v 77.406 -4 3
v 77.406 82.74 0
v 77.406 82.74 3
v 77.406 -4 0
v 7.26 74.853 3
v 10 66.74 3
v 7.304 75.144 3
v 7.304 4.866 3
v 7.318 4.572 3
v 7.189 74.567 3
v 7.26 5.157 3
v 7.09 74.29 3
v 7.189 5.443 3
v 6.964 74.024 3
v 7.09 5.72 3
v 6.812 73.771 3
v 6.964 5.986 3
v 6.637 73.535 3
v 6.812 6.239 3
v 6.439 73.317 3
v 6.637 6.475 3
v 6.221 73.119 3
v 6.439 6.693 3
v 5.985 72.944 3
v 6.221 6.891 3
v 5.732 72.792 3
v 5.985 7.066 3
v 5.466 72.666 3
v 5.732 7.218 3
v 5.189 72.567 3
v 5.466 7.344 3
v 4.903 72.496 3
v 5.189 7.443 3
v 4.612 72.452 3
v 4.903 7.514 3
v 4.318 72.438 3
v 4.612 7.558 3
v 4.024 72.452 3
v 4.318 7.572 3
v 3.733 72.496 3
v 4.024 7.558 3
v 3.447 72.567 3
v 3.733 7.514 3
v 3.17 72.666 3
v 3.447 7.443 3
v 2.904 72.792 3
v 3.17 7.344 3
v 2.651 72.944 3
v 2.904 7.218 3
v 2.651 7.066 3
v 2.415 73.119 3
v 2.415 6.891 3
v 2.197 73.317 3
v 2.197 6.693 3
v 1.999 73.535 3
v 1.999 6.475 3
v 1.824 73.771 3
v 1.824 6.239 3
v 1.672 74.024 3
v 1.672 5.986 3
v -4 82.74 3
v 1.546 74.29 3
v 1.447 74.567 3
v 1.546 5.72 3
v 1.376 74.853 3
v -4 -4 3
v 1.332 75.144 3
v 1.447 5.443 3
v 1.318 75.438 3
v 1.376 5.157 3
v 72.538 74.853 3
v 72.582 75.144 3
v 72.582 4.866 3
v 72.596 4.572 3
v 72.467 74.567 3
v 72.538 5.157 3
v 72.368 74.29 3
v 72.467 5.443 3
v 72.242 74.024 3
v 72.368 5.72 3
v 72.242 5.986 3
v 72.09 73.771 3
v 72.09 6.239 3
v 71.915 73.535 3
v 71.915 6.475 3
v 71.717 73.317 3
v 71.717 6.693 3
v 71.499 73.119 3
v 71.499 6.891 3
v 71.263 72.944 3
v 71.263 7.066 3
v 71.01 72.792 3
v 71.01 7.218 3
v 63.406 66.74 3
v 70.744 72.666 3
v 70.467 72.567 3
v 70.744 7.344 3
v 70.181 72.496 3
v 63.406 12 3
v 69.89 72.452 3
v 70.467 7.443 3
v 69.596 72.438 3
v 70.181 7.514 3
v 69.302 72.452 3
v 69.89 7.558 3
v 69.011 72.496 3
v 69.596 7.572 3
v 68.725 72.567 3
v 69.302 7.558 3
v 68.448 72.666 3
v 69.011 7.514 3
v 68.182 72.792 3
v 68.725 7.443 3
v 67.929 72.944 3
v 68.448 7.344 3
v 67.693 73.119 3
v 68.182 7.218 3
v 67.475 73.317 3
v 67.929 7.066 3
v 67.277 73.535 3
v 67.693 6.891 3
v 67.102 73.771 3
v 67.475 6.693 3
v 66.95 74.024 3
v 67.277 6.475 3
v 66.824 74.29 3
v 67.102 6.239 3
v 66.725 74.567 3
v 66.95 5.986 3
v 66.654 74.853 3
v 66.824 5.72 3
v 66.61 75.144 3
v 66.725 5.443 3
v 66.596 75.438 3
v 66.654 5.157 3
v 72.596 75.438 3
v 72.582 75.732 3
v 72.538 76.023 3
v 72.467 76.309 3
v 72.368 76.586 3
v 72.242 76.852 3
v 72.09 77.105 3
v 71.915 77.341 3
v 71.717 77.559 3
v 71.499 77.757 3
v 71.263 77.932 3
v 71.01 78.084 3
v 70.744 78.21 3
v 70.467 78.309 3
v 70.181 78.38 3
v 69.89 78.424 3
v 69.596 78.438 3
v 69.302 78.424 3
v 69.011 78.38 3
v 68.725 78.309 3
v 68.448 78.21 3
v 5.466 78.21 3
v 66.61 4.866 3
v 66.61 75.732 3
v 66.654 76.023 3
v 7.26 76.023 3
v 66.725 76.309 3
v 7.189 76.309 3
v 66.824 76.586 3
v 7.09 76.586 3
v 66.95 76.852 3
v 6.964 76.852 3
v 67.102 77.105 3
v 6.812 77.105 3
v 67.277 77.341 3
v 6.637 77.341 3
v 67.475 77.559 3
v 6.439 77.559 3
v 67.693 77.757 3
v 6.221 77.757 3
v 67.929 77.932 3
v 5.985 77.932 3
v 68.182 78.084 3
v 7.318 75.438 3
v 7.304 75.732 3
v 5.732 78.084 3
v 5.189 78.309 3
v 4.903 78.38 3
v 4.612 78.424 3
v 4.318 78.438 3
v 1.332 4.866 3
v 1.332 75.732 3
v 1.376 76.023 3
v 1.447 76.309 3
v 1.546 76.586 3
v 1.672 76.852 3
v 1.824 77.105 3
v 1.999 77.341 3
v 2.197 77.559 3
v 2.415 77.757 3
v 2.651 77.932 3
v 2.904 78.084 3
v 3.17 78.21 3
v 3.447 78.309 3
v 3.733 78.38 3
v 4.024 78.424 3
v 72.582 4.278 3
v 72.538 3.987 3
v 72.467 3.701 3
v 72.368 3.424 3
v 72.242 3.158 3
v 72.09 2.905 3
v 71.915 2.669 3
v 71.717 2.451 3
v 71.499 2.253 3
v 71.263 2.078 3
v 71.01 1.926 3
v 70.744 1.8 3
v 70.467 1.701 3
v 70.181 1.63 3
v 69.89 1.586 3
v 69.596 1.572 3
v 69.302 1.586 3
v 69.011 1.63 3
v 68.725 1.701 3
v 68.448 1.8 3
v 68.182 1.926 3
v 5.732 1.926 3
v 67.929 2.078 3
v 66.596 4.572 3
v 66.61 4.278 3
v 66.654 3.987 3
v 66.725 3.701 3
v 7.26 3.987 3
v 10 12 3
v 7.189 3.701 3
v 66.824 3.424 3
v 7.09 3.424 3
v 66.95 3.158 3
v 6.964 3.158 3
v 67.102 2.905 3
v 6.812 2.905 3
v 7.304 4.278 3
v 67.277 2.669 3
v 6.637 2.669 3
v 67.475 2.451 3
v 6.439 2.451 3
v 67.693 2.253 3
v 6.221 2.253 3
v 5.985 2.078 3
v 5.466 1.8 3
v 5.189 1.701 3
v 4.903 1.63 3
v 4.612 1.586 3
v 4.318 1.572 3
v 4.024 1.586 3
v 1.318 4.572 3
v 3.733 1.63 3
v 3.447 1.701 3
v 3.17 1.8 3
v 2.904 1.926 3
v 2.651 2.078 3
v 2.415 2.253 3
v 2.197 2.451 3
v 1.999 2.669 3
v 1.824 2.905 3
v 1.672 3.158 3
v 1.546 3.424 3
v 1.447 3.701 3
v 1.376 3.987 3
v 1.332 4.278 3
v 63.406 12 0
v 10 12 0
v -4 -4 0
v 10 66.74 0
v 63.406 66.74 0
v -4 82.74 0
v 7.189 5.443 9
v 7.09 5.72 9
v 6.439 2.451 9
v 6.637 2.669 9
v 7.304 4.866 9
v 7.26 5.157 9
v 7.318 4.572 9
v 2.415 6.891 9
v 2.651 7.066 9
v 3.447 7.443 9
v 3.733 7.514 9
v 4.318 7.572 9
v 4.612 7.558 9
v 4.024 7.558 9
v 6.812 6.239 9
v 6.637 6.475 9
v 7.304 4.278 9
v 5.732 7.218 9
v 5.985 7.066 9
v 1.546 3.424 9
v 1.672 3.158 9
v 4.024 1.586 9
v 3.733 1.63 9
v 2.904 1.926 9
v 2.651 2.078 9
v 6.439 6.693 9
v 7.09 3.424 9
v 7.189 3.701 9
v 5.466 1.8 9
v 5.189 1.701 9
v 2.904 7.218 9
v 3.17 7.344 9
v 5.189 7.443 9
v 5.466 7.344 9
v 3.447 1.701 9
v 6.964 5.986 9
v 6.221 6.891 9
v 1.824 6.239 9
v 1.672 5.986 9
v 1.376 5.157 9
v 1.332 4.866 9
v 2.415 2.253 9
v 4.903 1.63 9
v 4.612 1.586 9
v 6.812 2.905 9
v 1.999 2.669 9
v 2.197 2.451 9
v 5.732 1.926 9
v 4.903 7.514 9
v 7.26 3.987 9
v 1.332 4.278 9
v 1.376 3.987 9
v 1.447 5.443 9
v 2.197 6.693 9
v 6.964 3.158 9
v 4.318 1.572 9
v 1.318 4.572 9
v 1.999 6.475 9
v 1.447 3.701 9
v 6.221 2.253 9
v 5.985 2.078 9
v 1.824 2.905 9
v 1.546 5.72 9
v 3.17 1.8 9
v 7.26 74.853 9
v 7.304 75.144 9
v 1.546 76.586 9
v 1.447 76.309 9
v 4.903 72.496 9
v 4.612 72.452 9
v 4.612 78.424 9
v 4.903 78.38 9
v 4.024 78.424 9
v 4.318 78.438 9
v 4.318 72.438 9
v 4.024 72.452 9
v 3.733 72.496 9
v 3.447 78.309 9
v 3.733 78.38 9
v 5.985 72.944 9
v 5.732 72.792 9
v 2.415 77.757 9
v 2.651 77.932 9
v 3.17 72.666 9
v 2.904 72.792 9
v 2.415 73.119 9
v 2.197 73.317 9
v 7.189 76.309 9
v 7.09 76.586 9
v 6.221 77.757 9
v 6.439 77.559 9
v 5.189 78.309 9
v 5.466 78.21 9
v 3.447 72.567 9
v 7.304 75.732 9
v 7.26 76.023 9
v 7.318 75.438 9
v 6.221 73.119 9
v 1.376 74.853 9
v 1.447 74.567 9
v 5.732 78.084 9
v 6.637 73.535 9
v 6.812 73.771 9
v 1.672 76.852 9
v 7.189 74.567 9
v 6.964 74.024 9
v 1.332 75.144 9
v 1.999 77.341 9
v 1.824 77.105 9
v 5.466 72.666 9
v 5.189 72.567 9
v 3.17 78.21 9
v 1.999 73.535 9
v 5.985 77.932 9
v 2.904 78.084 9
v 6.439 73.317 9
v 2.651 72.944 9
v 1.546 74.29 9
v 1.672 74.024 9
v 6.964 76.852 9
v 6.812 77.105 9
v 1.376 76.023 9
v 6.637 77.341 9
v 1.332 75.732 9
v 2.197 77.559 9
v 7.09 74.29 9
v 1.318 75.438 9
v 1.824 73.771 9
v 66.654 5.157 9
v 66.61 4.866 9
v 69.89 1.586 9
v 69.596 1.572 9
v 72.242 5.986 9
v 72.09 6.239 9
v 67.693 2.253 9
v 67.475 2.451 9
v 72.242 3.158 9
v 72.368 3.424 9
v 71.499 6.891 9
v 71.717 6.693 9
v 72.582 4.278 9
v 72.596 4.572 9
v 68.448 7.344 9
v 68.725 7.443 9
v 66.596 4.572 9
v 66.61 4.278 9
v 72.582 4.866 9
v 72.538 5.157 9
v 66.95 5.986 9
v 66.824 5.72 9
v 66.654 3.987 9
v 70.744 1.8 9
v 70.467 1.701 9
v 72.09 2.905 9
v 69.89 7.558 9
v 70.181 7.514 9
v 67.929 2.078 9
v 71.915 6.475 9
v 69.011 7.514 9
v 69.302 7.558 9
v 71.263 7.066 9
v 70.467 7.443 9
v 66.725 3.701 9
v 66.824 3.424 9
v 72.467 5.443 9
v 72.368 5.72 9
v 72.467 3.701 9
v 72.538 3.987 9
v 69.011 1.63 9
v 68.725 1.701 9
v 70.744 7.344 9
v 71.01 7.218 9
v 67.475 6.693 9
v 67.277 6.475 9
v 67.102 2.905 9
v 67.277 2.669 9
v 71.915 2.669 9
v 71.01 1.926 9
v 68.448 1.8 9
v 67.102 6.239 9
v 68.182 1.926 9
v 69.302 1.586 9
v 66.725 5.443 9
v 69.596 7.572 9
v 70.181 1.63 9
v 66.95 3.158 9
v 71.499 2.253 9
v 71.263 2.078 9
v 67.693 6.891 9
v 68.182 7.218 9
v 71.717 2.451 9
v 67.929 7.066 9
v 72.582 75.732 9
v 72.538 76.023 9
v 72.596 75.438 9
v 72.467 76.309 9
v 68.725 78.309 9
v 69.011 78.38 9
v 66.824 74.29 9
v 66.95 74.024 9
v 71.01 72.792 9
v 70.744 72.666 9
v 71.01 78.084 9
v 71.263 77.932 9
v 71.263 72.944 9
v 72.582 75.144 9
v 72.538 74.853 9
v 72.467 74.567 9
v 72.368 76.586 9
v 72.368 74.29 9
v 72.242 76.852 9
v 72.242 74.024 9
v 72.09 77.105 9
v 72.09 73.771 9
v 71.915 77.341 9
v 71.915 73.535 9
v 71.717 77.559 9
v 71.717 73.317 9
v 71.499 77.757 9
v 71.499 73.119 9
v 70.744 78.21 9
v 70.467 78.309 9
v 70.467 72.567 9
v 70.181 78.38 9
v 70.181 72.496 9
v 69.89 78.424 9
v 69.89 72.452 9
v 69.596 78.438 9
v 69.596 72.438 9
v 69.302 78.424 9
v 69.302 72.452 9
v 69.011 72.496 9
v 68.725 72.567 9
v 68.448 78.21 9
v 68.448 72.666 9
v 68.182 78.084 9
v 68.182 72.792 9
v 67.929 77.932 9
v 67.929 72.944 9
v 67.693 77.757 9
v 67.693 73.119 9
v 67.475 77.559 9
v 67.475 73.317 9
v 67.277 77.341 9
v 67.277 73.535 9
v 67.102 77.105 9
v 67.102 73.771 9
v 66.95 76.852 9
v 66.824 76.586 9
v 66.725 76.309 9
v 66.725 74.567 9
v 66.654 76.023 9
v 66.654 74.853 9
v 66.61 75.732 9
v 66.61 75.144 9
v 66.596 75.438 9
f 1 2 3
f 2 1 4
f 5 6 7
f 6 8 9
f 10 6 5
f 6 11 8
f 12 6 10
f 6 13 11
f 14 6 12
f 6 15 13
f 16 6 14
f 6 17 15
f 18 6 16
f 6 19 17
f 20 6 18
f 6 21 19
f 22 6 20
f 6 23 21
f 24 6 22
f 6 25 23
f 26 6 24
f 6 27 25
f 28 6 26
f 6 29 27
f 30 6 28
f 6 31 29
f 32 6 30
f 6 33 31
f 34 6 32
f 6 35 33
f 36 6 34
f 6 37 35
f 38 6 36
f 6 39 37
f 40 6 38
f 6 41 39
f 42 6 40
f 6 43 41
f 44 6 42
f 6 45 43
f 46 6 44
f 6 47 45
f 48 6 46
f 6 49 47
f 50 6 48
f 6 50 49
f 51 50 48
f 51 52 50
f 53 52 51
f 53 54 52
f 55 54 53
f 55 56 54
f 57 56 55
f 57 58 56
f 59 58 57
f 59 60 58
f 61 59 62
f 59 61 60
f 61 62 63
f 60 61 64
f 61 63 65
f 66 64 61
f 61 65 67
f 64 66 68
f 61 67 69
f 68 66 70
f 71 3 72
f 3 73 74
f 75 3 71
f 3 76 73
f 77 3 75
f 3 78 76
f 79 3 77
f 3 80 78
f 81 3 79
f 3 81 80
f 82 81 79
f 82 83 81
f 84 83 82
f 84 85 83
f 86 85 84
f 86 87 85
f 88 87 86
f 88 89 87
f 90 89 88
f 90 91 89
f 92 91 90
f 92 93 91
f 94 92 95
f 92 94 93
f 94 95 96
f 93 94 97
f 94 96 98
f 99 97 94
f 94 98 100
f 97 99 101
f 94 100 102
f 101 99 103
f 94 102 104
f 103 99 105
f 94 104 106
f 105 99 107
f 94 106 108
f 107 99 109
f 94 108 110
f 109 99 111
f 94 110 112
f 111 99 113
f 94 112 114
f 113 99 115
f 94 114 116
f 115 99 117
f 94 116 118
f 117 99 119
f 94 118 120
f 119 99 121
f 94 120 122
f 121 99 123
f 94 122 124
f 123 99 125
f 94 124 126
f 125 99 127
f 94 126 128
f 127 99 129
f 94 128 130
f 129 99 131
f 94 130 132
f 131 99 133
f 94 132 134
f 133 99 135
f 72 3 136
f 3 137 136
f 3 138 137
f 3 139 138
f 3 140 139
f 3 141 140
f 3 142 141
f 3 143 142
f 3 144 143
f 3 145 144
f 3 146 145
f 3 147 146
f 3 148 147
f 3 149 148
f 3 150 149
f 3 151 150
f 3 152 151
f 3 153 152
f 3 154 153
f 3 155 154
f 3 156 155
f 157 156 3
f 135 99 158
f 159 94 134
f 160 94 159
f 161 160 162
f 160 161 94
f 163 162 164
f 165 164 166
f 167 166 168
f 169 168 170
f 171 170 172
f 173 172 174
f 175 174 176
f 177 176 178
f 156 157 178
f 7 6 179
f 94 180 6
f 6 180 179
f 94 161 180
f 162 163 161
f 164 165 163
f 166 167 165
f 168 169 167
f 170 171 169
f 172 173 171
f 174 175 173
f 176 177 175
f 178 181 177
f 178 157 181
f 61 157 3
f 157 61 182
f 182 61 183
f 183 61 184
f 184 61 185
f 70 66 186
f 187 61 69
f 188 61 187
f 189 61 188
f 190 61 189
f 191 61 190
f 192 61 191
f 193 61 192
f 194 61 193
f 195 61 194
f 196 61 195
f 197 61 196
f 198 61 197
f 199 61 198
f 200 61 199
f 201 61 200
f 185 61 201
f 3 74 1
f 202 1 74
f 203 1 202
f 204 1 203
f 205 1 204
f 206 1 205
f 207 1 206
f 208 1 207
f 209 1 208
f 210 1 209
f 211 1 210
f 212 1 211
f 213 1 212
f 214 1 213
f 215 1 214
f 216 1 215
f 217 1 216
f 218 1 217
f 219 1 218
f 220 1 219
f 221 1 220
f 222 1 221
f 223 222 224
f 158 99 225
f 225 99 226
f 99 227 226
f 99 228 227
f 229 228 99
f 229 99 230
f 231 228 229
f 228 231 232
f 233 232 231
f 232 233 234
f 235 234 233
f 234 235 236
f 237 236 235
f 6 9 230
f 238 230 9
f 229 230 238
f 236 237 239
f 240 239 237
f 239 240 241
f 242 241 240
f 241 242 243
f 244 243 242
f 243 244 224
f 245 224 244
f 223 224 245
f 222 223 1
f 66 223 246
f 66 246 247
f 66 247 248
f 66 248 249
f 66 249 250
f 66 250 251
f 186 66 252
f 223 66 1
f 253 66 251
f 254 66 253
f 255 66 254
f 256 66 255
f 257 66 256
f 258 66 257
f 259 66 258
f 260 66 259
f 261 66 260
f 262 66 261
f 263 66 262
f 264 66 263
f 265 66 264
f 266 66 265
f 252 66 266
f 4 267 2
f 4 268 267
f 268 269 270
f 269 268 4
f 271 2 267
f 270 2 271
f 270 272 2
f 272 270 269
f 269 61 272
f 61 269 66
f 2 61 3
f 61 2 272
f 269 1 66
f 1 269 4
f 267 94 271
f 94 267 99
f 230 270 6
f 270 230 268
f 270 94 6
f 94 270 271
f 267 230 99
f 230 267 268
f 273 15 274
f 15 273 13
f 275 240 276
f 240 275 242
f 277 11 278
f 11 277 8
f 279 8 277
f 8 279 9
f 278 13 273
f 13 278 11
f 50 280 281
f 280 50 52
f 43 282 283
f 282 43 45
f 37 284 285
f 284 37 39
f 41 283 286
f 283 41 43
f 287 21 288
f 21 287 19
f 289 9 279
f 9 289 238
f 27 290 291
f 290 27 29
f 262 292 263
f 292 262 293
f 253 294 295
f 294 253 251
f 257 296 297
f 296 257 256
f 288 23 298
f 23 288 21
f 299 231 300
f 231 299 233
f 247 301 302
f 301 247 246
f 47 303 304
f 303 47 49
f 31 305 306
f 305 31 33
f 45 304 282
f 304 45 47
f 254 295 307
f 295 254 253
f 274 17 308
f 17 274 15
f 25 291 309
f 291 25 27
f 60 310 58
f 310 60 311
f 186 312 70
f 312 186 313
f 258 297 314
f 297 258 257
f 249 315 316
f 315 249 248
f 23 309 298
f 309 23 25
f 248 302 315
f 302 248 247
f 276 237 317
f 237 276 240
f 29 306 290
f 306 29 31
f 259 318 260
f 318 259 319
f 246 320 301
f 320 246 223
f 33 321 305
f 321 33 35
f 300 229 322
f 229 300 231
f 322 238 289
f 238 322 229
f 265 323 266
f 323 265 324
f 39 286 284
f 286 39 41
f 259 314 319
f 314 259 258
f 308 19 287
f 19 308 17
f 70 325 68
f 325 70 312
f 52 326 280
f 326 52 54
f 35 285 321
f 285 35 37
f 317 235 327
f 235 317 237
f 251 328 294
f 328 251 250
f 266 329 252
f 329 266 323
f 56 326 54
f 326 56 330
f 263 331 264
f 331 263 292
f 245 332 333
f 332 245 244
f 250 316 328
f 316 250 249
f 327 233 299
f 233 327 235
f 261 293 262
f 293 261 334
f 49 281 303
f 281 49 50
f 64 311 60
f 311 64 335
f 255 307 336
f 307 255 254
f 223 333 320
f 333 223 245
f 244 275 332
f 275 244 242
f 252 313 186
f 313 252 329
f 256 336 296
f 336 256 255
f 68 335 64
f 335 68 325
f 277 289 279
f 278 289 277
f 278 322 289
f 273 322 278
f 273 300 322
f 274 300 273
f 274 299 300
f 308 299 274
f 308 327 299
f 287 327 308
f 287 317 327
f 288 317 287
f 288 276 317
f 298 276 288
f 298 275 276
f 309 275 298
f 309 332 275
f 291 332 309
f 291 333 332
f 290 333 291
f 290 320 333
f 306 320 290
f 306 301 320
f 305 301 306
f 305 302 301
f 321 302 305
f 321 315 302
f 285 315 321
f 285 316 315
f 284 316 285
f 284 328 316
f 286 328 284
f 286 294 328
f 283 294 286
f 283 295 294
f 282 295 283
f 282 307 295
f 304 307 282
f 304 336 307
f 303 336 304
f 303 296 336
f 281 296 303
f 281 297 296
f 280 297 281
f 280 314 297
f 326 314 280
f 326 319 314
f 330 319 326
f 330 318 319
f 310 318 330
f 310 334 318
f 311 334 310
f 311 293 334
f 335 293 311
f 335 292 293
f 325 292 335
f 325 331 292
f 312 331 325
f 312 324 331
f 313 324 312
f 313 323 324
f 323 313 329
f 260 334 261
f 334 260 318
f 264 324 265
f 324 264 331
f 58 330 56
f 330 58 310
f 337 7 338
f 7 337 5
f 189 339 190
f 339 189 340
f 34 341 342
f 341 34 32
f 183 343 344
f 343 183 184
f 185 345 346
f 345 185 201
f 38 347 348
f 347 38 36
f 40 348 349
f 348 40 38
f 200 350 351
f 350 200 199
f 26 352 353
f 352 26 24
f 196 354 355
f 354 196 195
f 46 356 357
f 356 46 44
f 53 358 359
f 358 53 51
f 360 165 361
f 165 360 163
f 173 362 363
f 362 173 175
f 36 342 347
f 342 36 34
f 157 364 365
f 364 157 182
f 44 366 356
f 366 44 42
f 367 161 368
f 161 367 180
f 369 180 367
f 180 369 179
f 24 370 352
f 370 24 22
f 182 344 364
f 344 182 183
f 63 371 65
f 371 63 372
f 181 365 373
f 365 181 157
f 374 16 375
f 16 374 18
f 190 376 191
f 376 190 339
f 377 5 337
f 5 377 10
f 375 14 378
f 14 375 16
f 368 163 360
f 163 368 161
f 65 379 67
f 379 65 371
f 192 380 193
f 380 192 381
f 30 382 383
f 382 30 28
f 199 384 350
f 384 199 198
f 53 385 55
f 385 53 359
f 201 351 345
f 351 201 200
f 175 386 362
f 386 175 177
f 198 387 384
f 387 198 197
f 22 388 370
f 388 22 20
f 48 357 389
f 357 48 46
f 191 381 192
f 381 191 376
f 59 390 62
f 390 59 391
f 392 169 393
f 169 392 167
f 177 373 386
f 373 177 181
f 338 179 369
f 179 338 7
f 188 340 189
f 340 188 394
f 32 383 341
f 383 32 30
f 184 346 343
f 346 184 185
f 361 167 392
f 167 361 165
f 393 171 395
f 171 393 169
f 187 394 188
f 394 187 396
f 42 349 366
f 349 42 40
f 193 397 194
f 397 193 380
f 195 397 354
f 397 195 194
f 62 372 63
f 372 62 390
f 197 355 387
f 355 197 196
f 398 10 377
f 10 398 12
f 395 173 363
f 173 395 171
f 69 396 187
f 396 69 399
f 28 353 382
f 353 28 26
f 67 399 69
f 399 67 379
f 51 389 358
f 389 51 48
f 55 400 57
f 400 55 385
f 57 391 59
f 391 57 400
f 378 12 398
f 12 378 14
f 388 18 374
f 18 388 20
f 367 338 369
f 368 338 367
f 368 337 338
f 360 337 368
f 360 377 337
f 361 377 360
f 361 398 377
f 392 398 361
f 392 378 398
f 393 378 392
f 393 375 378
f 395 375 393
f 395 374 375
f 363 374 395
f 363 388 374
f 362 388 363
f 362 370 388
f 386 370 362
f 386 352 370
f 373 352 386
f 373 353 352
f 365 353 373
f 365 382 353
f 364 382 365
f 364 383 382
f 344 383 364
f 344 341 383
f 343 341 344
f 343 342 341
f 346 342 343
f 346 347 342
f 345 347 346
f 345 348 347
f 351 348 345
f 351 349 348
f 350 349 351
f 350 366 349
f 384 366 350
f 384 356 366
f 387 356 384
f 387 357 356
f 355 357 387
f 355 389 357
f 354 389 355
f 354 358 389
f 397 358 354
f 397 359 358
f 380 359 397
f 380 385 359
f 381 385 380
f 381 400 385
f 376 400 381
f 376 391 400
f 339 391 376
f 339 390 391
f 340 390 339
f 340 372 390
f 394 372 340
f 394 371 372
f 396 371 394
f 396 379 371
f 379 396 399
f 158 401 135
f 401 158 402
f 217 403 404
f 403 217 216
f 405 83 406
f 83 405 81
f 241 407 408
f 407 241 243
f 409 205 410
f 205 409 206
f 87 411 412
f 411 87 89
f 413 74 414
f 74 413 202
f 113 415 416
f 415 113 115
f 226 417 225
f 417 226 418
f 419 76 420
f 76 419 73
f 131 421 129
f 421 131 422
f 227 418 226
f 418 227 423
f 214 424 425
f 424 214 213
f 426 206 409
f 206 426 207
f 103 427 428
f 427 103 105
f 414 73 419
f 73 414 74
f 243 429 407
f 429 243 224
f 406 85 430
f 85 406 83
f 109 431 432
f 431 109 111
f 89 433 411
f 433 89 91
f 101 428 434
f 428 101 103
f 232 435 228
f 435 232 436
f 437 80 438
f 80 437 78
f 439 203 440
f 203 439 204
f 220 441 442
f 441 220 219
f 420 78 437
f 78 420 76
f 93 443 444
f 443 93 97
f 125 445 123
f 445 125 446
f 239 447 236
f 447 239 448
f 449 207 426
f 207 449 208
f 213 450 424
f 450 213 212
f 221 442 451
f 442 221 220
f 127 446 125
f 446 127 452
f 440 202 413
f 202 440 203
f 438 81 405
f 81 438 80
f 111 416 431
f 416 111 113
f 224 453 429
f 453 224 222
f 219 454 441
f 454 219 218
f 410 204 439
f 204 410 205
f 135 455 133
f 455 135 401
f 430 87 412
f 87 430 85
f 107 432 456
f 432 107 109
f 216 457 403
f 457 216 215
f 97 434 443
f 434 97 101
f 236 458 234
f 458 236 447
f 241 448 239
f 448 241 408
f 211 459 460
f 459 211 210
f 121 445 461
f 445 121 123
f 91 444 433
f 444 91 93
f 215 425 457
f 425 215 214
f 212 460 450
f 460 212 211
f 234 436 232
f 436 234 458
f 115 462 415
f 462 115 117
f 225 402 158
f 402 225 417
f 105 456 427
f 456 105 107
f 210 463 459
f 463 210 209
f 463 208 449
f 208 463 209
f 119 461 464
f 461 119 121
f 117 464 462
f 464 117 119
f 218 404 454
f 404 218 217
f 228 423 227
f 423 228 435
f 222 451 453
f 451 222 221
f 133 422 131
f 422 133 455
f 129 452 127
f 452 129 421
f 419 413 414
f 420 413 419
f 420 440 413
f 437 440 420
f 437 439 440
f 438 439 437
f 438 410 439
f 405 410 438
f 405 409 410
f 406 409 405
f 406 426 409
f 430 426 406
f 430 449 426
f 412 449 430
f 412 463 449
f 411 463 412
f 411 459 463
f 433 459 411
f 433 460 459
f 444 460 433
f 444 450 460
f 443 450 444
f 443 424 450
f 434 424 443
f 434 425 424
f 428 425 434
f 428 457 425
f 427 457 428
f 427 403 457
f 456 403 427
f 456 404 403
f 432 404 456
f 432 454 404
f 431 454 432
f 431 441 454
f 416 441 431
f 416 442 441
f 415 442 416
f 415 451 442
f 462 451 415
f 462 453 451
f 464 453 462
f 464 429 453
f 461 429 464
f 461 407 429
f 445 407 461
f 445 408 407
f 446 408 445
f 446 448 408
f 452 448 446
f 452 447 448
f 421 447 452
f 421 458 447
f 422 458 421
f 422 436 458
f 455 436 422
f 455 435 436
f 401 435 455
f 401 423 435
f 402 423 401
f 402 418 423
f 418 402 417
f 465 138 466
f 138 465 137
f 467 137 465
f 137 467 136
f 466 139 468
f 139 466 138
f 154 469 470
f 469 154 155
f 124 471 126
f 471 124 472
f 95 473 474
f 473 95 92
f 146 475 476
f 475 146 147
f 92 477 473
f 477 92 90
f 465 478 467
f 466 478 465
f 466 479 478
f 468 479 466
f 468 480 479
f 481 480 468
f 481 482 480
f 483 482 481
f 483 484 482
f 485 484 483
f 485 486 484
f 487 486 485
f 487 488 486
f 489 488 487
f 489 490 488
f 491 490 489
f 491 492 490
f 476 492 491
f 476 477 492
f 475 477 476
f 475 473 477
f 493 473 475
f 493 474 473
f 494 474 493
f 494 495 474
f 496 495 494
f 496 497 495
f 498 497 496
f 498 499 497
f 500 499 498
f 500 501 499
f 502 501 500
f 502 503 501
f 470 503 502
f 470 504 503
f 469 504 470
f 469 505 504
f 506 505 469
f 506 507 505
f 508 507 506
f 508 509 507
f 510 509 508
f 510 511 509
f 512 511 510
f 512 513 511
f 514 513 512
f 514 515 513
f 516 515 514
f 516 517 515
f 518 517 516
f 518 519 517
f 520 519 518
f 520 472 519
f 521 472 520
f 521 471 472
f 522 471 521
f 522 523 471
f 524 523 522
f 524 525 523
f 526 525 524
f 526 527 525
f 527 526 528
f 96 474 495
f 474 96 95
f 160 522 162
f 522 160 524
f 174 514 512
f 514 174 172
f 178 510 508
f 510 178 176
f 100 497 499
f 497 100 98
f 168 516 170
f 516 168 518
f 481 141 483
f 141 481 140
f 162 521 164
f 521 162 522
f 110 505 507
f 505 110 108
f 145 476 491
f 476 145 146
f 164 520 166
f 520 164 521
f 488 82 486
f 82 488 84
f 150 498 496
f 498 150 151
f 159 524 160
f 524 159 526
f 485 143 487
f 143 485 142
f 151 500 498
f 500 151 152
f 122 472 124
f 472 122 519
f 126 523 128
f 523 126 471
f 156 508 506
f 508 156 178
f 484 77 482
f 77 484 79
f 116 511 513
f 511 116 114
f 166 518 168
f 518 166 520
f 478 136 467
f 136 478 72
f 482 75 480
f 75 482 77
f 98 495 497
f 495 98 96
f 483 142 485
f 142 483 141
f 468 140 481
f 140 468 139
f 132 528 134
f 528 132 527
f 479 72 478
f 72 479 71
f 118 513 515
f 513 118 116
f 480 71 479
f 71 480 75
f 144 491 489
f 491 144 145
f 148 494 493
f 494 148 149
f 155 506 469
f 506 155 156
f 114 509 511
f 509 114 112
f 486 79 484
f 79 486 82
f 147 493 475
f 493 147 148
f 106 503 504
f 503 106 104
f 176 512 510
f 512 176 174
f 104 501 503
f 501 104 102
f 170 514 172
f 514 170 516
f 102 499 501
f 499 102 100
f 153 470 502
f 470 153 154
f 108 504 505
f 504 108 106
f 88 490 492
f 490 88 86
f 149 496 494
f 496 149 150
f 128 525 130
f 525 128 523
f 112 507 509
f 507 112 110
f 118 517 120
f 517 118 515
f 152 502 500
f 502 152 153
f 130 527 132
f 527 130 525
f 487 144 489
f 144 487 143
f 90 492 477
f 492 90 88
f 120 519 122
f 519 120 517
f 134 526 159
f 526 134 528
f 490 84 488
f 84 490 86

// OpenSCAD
// Units: mm. PCB stand worked example.
union() {
  difference() {
    translate([-4, -4, 0])
      cube([81.406, 86.740, 3]);
    translate([10, 12, -0.1])
      cube([53.406, 54.740, 3.2]);
  }
  translate([4.318, 4.572, 2.8])
    cylinder(h=6.2, d=6, $fn=64);
  translate([4.318, 75.438, 2.8])
    cylinder(h=6.2, d=6, $fn=64);
  translate([69.596, 4.572, 2.8])
    cylinder(h=6.2, d=6, $fn=64);
  translate([69.596, 75.438, 2.8])
    cylinder(h=6.2, d=6, $fn=64);
}
